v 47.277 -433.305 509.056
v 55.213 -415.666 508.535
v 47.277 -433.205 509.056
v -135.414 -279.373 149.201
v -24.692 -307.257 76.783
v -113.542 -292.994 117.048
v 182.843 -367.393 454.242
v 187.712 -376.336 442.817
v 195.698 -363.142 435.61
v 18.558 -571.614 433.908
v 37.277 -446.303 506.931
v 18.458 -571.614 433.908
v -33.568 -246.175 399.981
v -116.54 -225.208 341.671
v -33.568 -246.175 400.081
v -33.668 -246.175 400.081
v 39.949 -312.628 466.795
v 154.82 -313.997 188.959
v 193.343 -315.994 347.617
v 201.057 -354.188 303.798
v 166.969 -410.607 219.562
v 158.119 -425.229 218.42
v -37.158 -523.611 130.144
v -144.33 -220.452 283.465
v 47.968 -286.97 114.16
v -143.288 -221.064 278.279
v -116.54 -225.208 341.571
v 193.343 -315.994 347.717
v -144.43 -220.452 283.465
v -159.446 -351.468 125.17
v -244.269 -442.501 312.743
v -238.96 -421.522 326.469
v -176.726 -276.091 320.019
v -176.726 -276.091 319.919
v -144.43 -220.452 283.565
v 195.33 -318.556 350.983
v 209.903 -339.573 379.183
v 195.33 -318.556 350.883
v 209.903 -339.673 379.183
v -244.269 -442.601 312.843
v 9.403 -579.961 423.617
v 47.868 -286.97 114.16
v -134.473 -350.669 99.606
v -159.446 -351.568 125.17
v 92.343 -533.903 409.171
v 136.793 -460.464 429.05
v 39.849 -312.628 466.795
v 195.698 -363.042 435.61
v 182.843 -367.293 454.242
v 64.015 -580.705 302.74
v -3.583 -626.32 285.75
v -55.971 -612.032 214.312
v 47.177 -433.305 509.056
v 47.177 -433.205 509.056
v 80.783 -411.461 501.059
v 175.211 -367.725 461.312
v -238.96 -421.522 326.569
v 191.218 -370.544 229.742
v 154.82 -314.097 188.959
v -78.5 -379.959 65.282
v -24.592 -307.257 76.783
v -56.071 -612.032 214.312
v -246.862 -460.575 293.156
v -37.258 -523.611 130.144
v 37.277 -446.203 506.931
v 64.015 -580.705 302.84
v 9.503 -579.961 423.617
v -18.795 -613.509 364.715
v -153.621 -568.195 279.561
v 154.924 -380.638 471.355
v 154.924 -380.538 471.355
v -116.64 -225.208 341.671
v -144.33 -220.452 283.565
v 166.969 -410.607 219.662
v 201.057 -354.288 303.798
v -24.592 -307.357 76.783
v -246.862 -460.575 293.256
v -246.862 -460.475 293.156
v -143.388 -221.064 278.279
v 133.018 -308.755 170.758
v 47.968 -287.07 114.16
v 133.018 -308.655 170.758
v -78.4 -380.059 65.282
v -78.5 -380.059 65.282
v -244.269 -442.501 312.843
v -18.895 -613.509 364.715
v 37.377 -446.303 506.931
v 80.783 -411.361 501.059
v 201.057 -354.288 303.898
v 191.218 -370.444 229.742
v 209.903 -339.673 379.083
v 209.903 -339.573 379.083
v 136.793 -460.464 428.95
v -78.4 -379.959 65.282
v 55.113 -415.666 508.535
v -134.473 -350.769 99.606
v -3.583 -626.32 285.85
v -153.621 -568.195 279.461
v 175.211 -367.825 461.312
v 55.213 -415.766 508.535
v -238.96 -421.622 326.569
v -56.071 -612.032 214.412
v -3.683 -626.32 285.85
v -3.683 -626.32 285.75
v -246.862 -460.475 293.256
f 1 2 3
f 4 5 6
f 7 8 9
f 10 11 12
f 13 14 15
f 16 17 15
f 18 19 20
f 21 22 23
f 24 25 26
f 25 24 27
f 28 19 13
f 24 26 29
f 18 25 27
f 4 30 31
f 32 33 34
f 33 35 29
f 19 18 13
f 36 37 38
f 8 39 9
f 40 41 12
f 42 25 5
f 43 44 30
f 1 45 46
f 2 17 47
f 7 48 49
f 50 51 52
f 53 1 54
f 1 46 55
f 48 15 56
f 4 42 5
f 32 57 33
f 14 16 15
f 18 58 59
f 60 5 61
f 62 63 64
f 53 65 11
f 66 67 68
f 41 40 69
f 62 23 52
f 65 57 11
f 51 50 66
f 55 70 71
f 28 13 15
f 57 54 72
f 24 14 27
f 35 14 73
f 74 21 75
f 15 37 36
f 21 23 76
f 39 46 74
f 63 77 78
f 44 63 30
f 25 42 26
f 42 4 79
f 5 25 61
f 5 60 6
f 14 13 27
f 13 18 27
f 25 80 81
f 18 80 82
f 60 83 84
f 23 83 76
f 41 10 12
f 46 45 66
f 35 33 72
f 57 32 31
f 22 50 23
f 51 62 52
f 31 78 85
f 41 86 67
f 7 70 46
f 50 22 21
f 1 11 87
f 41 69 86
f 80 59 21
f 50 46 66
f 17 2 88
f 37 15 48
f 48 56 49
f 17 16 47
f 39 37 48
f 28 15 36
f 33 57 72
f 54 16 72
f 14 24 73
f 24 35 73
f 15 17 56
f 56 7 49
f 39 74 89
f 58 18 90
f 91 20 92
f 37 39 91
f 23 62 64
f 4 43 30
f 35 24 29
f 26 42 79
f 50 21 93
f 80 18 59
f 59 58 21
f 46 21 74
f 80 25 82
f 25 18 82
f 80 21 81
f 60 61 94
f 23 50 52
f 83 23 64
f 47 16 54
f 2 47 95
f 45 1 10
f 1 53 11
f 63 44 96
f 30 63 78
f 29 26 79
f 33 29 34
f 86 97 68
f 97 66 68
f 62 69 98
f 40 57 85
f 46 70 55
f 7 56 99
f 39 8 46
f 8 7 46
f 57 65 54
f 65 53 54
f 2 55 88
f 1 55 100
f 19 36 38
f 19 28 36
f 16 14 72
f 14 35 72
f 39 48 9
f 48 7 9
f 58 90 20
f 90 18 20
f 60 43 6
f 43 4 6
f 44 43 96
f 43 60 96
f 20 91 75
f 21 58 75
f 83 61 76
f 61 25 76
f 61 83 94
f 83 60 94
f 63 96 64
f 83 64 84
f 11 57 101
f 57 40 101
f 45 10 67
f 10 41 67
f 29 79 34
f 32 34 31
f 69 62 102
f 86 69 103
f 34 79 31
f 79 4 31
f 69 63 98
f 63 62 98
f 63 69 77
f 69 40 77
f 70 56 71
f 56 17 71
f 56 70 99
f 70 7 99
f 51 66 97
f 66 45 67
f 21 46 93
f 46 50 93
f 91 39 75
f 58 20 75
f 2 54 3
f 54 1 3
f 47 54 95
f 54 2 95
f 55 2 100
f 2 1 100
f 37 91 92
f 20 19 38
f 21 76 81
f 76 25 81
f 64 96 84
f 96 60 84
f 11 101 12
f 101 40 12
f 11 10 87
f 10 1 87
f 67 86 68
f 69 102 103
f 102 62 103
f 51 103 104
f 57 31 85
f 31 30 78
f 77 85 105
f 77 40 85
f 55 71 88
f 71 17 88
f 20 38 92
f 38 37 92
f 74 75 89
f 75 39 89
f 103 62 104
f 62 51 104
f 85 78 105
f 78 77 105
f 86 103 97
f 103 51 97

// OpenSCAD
hull(){ translate([193.243318486,-316.094097996,347.616926503])cube(0.1,0.1,0.1);
translate([195.598055321,-363.142343382,435.509701194])cube(0.1,0.1,0.1);
translate([-153.620885358,-568.19523269,279.460839955])cube(0.1,0.1,0.1);
translate([-135.413986014,-279.472727273,149.201398601])cube(0.1,0.1,0.1);
translate([-143.387878788,-221.163636364,278.278787879])cube(0.1,0.1,0.1);
translate([-144.429689684,-220.552138664,283.465194297])cube(0.1,0.1,0.1);
translate([-159.445678033,-351.567803331,125.169706582])cube(0.1,0.1,0.1);
translate([-244.269356598,-442.60087241,312.74263904])cube(0.1,0.1,0.1);
translate([-246.861713398,-460.574546225,293.155943216])cube(0.1,0.1,0.1);
translate([47.8684389911,-287.069529652,114.160190866])cube(0.1,0.1,0.1);
translate([195.230487166,-318.656364589,350.882661079])cube(0.1,0.1,0.1);
translate([209.802897174,-339.673474234,379.083353123])cube(0.1,0.1,0.1);
translate([200.957055215,-354.288343558,303.797546012])cube(0.1,0.1,0.1);
translate([158.019074512,-425.229355155,218.419581629])cube(0.1,0.1,0.1);
translate([-37.2576081831,-523.610758461,130.143820958])cube(0.1,0.1,0.1);
translate([-56.0706771067,-612.032182401,214.311855403])cube(0.1,0.1,0.1);
translate([-238.959923664,-421.622137405,326.469465649])cube(0.1,0.1,0.1);
translate([-176.726069246,-276.191446029,319.918533605])cube(0.1,0.1,0.1);
translate([-33.6679292929,-246.275252525,399.981060606])cube(0.1,0.1,0.1);
translate([-116.639848557,-225.307619498,341.571225745])cube(0.1,0.1,0.1);
translate([-134.472600175,-350.768942704,99.606166521])cube(0.1,0.1,0.1);
translate([-78.49959996,-380.059255926,65.2825282528])cube(0.1,0.1,0.1);
translate([-113.54202773,-293.093587522,117.048310225])cube(0.1,0.1,0.1);
translate([-24.6918365394,-307.357163365,76.7834242511])cube(0.1,0.1,0.1);
translate([63.9151646565,-580.705380133,302.739531102])cube(0.1,0.1,0.1);
translate([-3.68273347075,-626.319803393,285.749960362])cube(0.1,0.1,0.1);
translate([9.40333173154,-579.960756047,423.516738747])cube(0.1,0.1,0.1);
translate([-18.8952313836,-613.509278835,364.614752173])cube(0.1,0.1,0.1);
translate([191.117896973,-370.544344132,229.742432289])cube(0.1,0.1,0.1);
translate([166.869158879,-410.607476636,219.561915888])cube(0.1,0.1,0.1);
translate([154.720211581,-314.096603563,188.958797327])cube(0.1,0.1,0.1);
translate([132.91831357,-308.754940711,170.757575758])cube(0.1,0.1,0.1);
translate([92.2429555416,-533.902943018,409.071383845])cube(0.1,0.1,0.1);
translate([18.4581769287,-571.6138159,433.807776346])cube(0.1,0.1,0.1);
translate([37.2773179969,-446.303128068,506.830551269])cube(0.1,0.1,0.1);
translate([47.1766429468,-433.304730013,508.955629971])cube(0.1,0.1,0.1);
translate([39.8485770811,-312.727895298,466.695327956])cube(0.1,0.1,0.1);
translate([55.1134388437,-415.765712195,508.435184338])cube(0.1,0.1,0.1);
translate([80.682676038,-411.461017832,500.958609918])cube(0.1,0.1,0.1);
translate([154.823609227,-380.637720488,471.255088195])cube(0.1,0.1,0.1);
translate([187.61234272,-376.336129419,442.717195926])cube(0.1,0.1,0.1);
translate([136.692645445,-460.464324918,428.949506037])cube(0.1,0.1,0.1);
translate([182.742663657,-367.392776524,454.14221219])cube(0.1,0.1,0.1);
translate([175.110513447,-367.824938875,461.211735941])cube(0.1,0.1,0.1); }
